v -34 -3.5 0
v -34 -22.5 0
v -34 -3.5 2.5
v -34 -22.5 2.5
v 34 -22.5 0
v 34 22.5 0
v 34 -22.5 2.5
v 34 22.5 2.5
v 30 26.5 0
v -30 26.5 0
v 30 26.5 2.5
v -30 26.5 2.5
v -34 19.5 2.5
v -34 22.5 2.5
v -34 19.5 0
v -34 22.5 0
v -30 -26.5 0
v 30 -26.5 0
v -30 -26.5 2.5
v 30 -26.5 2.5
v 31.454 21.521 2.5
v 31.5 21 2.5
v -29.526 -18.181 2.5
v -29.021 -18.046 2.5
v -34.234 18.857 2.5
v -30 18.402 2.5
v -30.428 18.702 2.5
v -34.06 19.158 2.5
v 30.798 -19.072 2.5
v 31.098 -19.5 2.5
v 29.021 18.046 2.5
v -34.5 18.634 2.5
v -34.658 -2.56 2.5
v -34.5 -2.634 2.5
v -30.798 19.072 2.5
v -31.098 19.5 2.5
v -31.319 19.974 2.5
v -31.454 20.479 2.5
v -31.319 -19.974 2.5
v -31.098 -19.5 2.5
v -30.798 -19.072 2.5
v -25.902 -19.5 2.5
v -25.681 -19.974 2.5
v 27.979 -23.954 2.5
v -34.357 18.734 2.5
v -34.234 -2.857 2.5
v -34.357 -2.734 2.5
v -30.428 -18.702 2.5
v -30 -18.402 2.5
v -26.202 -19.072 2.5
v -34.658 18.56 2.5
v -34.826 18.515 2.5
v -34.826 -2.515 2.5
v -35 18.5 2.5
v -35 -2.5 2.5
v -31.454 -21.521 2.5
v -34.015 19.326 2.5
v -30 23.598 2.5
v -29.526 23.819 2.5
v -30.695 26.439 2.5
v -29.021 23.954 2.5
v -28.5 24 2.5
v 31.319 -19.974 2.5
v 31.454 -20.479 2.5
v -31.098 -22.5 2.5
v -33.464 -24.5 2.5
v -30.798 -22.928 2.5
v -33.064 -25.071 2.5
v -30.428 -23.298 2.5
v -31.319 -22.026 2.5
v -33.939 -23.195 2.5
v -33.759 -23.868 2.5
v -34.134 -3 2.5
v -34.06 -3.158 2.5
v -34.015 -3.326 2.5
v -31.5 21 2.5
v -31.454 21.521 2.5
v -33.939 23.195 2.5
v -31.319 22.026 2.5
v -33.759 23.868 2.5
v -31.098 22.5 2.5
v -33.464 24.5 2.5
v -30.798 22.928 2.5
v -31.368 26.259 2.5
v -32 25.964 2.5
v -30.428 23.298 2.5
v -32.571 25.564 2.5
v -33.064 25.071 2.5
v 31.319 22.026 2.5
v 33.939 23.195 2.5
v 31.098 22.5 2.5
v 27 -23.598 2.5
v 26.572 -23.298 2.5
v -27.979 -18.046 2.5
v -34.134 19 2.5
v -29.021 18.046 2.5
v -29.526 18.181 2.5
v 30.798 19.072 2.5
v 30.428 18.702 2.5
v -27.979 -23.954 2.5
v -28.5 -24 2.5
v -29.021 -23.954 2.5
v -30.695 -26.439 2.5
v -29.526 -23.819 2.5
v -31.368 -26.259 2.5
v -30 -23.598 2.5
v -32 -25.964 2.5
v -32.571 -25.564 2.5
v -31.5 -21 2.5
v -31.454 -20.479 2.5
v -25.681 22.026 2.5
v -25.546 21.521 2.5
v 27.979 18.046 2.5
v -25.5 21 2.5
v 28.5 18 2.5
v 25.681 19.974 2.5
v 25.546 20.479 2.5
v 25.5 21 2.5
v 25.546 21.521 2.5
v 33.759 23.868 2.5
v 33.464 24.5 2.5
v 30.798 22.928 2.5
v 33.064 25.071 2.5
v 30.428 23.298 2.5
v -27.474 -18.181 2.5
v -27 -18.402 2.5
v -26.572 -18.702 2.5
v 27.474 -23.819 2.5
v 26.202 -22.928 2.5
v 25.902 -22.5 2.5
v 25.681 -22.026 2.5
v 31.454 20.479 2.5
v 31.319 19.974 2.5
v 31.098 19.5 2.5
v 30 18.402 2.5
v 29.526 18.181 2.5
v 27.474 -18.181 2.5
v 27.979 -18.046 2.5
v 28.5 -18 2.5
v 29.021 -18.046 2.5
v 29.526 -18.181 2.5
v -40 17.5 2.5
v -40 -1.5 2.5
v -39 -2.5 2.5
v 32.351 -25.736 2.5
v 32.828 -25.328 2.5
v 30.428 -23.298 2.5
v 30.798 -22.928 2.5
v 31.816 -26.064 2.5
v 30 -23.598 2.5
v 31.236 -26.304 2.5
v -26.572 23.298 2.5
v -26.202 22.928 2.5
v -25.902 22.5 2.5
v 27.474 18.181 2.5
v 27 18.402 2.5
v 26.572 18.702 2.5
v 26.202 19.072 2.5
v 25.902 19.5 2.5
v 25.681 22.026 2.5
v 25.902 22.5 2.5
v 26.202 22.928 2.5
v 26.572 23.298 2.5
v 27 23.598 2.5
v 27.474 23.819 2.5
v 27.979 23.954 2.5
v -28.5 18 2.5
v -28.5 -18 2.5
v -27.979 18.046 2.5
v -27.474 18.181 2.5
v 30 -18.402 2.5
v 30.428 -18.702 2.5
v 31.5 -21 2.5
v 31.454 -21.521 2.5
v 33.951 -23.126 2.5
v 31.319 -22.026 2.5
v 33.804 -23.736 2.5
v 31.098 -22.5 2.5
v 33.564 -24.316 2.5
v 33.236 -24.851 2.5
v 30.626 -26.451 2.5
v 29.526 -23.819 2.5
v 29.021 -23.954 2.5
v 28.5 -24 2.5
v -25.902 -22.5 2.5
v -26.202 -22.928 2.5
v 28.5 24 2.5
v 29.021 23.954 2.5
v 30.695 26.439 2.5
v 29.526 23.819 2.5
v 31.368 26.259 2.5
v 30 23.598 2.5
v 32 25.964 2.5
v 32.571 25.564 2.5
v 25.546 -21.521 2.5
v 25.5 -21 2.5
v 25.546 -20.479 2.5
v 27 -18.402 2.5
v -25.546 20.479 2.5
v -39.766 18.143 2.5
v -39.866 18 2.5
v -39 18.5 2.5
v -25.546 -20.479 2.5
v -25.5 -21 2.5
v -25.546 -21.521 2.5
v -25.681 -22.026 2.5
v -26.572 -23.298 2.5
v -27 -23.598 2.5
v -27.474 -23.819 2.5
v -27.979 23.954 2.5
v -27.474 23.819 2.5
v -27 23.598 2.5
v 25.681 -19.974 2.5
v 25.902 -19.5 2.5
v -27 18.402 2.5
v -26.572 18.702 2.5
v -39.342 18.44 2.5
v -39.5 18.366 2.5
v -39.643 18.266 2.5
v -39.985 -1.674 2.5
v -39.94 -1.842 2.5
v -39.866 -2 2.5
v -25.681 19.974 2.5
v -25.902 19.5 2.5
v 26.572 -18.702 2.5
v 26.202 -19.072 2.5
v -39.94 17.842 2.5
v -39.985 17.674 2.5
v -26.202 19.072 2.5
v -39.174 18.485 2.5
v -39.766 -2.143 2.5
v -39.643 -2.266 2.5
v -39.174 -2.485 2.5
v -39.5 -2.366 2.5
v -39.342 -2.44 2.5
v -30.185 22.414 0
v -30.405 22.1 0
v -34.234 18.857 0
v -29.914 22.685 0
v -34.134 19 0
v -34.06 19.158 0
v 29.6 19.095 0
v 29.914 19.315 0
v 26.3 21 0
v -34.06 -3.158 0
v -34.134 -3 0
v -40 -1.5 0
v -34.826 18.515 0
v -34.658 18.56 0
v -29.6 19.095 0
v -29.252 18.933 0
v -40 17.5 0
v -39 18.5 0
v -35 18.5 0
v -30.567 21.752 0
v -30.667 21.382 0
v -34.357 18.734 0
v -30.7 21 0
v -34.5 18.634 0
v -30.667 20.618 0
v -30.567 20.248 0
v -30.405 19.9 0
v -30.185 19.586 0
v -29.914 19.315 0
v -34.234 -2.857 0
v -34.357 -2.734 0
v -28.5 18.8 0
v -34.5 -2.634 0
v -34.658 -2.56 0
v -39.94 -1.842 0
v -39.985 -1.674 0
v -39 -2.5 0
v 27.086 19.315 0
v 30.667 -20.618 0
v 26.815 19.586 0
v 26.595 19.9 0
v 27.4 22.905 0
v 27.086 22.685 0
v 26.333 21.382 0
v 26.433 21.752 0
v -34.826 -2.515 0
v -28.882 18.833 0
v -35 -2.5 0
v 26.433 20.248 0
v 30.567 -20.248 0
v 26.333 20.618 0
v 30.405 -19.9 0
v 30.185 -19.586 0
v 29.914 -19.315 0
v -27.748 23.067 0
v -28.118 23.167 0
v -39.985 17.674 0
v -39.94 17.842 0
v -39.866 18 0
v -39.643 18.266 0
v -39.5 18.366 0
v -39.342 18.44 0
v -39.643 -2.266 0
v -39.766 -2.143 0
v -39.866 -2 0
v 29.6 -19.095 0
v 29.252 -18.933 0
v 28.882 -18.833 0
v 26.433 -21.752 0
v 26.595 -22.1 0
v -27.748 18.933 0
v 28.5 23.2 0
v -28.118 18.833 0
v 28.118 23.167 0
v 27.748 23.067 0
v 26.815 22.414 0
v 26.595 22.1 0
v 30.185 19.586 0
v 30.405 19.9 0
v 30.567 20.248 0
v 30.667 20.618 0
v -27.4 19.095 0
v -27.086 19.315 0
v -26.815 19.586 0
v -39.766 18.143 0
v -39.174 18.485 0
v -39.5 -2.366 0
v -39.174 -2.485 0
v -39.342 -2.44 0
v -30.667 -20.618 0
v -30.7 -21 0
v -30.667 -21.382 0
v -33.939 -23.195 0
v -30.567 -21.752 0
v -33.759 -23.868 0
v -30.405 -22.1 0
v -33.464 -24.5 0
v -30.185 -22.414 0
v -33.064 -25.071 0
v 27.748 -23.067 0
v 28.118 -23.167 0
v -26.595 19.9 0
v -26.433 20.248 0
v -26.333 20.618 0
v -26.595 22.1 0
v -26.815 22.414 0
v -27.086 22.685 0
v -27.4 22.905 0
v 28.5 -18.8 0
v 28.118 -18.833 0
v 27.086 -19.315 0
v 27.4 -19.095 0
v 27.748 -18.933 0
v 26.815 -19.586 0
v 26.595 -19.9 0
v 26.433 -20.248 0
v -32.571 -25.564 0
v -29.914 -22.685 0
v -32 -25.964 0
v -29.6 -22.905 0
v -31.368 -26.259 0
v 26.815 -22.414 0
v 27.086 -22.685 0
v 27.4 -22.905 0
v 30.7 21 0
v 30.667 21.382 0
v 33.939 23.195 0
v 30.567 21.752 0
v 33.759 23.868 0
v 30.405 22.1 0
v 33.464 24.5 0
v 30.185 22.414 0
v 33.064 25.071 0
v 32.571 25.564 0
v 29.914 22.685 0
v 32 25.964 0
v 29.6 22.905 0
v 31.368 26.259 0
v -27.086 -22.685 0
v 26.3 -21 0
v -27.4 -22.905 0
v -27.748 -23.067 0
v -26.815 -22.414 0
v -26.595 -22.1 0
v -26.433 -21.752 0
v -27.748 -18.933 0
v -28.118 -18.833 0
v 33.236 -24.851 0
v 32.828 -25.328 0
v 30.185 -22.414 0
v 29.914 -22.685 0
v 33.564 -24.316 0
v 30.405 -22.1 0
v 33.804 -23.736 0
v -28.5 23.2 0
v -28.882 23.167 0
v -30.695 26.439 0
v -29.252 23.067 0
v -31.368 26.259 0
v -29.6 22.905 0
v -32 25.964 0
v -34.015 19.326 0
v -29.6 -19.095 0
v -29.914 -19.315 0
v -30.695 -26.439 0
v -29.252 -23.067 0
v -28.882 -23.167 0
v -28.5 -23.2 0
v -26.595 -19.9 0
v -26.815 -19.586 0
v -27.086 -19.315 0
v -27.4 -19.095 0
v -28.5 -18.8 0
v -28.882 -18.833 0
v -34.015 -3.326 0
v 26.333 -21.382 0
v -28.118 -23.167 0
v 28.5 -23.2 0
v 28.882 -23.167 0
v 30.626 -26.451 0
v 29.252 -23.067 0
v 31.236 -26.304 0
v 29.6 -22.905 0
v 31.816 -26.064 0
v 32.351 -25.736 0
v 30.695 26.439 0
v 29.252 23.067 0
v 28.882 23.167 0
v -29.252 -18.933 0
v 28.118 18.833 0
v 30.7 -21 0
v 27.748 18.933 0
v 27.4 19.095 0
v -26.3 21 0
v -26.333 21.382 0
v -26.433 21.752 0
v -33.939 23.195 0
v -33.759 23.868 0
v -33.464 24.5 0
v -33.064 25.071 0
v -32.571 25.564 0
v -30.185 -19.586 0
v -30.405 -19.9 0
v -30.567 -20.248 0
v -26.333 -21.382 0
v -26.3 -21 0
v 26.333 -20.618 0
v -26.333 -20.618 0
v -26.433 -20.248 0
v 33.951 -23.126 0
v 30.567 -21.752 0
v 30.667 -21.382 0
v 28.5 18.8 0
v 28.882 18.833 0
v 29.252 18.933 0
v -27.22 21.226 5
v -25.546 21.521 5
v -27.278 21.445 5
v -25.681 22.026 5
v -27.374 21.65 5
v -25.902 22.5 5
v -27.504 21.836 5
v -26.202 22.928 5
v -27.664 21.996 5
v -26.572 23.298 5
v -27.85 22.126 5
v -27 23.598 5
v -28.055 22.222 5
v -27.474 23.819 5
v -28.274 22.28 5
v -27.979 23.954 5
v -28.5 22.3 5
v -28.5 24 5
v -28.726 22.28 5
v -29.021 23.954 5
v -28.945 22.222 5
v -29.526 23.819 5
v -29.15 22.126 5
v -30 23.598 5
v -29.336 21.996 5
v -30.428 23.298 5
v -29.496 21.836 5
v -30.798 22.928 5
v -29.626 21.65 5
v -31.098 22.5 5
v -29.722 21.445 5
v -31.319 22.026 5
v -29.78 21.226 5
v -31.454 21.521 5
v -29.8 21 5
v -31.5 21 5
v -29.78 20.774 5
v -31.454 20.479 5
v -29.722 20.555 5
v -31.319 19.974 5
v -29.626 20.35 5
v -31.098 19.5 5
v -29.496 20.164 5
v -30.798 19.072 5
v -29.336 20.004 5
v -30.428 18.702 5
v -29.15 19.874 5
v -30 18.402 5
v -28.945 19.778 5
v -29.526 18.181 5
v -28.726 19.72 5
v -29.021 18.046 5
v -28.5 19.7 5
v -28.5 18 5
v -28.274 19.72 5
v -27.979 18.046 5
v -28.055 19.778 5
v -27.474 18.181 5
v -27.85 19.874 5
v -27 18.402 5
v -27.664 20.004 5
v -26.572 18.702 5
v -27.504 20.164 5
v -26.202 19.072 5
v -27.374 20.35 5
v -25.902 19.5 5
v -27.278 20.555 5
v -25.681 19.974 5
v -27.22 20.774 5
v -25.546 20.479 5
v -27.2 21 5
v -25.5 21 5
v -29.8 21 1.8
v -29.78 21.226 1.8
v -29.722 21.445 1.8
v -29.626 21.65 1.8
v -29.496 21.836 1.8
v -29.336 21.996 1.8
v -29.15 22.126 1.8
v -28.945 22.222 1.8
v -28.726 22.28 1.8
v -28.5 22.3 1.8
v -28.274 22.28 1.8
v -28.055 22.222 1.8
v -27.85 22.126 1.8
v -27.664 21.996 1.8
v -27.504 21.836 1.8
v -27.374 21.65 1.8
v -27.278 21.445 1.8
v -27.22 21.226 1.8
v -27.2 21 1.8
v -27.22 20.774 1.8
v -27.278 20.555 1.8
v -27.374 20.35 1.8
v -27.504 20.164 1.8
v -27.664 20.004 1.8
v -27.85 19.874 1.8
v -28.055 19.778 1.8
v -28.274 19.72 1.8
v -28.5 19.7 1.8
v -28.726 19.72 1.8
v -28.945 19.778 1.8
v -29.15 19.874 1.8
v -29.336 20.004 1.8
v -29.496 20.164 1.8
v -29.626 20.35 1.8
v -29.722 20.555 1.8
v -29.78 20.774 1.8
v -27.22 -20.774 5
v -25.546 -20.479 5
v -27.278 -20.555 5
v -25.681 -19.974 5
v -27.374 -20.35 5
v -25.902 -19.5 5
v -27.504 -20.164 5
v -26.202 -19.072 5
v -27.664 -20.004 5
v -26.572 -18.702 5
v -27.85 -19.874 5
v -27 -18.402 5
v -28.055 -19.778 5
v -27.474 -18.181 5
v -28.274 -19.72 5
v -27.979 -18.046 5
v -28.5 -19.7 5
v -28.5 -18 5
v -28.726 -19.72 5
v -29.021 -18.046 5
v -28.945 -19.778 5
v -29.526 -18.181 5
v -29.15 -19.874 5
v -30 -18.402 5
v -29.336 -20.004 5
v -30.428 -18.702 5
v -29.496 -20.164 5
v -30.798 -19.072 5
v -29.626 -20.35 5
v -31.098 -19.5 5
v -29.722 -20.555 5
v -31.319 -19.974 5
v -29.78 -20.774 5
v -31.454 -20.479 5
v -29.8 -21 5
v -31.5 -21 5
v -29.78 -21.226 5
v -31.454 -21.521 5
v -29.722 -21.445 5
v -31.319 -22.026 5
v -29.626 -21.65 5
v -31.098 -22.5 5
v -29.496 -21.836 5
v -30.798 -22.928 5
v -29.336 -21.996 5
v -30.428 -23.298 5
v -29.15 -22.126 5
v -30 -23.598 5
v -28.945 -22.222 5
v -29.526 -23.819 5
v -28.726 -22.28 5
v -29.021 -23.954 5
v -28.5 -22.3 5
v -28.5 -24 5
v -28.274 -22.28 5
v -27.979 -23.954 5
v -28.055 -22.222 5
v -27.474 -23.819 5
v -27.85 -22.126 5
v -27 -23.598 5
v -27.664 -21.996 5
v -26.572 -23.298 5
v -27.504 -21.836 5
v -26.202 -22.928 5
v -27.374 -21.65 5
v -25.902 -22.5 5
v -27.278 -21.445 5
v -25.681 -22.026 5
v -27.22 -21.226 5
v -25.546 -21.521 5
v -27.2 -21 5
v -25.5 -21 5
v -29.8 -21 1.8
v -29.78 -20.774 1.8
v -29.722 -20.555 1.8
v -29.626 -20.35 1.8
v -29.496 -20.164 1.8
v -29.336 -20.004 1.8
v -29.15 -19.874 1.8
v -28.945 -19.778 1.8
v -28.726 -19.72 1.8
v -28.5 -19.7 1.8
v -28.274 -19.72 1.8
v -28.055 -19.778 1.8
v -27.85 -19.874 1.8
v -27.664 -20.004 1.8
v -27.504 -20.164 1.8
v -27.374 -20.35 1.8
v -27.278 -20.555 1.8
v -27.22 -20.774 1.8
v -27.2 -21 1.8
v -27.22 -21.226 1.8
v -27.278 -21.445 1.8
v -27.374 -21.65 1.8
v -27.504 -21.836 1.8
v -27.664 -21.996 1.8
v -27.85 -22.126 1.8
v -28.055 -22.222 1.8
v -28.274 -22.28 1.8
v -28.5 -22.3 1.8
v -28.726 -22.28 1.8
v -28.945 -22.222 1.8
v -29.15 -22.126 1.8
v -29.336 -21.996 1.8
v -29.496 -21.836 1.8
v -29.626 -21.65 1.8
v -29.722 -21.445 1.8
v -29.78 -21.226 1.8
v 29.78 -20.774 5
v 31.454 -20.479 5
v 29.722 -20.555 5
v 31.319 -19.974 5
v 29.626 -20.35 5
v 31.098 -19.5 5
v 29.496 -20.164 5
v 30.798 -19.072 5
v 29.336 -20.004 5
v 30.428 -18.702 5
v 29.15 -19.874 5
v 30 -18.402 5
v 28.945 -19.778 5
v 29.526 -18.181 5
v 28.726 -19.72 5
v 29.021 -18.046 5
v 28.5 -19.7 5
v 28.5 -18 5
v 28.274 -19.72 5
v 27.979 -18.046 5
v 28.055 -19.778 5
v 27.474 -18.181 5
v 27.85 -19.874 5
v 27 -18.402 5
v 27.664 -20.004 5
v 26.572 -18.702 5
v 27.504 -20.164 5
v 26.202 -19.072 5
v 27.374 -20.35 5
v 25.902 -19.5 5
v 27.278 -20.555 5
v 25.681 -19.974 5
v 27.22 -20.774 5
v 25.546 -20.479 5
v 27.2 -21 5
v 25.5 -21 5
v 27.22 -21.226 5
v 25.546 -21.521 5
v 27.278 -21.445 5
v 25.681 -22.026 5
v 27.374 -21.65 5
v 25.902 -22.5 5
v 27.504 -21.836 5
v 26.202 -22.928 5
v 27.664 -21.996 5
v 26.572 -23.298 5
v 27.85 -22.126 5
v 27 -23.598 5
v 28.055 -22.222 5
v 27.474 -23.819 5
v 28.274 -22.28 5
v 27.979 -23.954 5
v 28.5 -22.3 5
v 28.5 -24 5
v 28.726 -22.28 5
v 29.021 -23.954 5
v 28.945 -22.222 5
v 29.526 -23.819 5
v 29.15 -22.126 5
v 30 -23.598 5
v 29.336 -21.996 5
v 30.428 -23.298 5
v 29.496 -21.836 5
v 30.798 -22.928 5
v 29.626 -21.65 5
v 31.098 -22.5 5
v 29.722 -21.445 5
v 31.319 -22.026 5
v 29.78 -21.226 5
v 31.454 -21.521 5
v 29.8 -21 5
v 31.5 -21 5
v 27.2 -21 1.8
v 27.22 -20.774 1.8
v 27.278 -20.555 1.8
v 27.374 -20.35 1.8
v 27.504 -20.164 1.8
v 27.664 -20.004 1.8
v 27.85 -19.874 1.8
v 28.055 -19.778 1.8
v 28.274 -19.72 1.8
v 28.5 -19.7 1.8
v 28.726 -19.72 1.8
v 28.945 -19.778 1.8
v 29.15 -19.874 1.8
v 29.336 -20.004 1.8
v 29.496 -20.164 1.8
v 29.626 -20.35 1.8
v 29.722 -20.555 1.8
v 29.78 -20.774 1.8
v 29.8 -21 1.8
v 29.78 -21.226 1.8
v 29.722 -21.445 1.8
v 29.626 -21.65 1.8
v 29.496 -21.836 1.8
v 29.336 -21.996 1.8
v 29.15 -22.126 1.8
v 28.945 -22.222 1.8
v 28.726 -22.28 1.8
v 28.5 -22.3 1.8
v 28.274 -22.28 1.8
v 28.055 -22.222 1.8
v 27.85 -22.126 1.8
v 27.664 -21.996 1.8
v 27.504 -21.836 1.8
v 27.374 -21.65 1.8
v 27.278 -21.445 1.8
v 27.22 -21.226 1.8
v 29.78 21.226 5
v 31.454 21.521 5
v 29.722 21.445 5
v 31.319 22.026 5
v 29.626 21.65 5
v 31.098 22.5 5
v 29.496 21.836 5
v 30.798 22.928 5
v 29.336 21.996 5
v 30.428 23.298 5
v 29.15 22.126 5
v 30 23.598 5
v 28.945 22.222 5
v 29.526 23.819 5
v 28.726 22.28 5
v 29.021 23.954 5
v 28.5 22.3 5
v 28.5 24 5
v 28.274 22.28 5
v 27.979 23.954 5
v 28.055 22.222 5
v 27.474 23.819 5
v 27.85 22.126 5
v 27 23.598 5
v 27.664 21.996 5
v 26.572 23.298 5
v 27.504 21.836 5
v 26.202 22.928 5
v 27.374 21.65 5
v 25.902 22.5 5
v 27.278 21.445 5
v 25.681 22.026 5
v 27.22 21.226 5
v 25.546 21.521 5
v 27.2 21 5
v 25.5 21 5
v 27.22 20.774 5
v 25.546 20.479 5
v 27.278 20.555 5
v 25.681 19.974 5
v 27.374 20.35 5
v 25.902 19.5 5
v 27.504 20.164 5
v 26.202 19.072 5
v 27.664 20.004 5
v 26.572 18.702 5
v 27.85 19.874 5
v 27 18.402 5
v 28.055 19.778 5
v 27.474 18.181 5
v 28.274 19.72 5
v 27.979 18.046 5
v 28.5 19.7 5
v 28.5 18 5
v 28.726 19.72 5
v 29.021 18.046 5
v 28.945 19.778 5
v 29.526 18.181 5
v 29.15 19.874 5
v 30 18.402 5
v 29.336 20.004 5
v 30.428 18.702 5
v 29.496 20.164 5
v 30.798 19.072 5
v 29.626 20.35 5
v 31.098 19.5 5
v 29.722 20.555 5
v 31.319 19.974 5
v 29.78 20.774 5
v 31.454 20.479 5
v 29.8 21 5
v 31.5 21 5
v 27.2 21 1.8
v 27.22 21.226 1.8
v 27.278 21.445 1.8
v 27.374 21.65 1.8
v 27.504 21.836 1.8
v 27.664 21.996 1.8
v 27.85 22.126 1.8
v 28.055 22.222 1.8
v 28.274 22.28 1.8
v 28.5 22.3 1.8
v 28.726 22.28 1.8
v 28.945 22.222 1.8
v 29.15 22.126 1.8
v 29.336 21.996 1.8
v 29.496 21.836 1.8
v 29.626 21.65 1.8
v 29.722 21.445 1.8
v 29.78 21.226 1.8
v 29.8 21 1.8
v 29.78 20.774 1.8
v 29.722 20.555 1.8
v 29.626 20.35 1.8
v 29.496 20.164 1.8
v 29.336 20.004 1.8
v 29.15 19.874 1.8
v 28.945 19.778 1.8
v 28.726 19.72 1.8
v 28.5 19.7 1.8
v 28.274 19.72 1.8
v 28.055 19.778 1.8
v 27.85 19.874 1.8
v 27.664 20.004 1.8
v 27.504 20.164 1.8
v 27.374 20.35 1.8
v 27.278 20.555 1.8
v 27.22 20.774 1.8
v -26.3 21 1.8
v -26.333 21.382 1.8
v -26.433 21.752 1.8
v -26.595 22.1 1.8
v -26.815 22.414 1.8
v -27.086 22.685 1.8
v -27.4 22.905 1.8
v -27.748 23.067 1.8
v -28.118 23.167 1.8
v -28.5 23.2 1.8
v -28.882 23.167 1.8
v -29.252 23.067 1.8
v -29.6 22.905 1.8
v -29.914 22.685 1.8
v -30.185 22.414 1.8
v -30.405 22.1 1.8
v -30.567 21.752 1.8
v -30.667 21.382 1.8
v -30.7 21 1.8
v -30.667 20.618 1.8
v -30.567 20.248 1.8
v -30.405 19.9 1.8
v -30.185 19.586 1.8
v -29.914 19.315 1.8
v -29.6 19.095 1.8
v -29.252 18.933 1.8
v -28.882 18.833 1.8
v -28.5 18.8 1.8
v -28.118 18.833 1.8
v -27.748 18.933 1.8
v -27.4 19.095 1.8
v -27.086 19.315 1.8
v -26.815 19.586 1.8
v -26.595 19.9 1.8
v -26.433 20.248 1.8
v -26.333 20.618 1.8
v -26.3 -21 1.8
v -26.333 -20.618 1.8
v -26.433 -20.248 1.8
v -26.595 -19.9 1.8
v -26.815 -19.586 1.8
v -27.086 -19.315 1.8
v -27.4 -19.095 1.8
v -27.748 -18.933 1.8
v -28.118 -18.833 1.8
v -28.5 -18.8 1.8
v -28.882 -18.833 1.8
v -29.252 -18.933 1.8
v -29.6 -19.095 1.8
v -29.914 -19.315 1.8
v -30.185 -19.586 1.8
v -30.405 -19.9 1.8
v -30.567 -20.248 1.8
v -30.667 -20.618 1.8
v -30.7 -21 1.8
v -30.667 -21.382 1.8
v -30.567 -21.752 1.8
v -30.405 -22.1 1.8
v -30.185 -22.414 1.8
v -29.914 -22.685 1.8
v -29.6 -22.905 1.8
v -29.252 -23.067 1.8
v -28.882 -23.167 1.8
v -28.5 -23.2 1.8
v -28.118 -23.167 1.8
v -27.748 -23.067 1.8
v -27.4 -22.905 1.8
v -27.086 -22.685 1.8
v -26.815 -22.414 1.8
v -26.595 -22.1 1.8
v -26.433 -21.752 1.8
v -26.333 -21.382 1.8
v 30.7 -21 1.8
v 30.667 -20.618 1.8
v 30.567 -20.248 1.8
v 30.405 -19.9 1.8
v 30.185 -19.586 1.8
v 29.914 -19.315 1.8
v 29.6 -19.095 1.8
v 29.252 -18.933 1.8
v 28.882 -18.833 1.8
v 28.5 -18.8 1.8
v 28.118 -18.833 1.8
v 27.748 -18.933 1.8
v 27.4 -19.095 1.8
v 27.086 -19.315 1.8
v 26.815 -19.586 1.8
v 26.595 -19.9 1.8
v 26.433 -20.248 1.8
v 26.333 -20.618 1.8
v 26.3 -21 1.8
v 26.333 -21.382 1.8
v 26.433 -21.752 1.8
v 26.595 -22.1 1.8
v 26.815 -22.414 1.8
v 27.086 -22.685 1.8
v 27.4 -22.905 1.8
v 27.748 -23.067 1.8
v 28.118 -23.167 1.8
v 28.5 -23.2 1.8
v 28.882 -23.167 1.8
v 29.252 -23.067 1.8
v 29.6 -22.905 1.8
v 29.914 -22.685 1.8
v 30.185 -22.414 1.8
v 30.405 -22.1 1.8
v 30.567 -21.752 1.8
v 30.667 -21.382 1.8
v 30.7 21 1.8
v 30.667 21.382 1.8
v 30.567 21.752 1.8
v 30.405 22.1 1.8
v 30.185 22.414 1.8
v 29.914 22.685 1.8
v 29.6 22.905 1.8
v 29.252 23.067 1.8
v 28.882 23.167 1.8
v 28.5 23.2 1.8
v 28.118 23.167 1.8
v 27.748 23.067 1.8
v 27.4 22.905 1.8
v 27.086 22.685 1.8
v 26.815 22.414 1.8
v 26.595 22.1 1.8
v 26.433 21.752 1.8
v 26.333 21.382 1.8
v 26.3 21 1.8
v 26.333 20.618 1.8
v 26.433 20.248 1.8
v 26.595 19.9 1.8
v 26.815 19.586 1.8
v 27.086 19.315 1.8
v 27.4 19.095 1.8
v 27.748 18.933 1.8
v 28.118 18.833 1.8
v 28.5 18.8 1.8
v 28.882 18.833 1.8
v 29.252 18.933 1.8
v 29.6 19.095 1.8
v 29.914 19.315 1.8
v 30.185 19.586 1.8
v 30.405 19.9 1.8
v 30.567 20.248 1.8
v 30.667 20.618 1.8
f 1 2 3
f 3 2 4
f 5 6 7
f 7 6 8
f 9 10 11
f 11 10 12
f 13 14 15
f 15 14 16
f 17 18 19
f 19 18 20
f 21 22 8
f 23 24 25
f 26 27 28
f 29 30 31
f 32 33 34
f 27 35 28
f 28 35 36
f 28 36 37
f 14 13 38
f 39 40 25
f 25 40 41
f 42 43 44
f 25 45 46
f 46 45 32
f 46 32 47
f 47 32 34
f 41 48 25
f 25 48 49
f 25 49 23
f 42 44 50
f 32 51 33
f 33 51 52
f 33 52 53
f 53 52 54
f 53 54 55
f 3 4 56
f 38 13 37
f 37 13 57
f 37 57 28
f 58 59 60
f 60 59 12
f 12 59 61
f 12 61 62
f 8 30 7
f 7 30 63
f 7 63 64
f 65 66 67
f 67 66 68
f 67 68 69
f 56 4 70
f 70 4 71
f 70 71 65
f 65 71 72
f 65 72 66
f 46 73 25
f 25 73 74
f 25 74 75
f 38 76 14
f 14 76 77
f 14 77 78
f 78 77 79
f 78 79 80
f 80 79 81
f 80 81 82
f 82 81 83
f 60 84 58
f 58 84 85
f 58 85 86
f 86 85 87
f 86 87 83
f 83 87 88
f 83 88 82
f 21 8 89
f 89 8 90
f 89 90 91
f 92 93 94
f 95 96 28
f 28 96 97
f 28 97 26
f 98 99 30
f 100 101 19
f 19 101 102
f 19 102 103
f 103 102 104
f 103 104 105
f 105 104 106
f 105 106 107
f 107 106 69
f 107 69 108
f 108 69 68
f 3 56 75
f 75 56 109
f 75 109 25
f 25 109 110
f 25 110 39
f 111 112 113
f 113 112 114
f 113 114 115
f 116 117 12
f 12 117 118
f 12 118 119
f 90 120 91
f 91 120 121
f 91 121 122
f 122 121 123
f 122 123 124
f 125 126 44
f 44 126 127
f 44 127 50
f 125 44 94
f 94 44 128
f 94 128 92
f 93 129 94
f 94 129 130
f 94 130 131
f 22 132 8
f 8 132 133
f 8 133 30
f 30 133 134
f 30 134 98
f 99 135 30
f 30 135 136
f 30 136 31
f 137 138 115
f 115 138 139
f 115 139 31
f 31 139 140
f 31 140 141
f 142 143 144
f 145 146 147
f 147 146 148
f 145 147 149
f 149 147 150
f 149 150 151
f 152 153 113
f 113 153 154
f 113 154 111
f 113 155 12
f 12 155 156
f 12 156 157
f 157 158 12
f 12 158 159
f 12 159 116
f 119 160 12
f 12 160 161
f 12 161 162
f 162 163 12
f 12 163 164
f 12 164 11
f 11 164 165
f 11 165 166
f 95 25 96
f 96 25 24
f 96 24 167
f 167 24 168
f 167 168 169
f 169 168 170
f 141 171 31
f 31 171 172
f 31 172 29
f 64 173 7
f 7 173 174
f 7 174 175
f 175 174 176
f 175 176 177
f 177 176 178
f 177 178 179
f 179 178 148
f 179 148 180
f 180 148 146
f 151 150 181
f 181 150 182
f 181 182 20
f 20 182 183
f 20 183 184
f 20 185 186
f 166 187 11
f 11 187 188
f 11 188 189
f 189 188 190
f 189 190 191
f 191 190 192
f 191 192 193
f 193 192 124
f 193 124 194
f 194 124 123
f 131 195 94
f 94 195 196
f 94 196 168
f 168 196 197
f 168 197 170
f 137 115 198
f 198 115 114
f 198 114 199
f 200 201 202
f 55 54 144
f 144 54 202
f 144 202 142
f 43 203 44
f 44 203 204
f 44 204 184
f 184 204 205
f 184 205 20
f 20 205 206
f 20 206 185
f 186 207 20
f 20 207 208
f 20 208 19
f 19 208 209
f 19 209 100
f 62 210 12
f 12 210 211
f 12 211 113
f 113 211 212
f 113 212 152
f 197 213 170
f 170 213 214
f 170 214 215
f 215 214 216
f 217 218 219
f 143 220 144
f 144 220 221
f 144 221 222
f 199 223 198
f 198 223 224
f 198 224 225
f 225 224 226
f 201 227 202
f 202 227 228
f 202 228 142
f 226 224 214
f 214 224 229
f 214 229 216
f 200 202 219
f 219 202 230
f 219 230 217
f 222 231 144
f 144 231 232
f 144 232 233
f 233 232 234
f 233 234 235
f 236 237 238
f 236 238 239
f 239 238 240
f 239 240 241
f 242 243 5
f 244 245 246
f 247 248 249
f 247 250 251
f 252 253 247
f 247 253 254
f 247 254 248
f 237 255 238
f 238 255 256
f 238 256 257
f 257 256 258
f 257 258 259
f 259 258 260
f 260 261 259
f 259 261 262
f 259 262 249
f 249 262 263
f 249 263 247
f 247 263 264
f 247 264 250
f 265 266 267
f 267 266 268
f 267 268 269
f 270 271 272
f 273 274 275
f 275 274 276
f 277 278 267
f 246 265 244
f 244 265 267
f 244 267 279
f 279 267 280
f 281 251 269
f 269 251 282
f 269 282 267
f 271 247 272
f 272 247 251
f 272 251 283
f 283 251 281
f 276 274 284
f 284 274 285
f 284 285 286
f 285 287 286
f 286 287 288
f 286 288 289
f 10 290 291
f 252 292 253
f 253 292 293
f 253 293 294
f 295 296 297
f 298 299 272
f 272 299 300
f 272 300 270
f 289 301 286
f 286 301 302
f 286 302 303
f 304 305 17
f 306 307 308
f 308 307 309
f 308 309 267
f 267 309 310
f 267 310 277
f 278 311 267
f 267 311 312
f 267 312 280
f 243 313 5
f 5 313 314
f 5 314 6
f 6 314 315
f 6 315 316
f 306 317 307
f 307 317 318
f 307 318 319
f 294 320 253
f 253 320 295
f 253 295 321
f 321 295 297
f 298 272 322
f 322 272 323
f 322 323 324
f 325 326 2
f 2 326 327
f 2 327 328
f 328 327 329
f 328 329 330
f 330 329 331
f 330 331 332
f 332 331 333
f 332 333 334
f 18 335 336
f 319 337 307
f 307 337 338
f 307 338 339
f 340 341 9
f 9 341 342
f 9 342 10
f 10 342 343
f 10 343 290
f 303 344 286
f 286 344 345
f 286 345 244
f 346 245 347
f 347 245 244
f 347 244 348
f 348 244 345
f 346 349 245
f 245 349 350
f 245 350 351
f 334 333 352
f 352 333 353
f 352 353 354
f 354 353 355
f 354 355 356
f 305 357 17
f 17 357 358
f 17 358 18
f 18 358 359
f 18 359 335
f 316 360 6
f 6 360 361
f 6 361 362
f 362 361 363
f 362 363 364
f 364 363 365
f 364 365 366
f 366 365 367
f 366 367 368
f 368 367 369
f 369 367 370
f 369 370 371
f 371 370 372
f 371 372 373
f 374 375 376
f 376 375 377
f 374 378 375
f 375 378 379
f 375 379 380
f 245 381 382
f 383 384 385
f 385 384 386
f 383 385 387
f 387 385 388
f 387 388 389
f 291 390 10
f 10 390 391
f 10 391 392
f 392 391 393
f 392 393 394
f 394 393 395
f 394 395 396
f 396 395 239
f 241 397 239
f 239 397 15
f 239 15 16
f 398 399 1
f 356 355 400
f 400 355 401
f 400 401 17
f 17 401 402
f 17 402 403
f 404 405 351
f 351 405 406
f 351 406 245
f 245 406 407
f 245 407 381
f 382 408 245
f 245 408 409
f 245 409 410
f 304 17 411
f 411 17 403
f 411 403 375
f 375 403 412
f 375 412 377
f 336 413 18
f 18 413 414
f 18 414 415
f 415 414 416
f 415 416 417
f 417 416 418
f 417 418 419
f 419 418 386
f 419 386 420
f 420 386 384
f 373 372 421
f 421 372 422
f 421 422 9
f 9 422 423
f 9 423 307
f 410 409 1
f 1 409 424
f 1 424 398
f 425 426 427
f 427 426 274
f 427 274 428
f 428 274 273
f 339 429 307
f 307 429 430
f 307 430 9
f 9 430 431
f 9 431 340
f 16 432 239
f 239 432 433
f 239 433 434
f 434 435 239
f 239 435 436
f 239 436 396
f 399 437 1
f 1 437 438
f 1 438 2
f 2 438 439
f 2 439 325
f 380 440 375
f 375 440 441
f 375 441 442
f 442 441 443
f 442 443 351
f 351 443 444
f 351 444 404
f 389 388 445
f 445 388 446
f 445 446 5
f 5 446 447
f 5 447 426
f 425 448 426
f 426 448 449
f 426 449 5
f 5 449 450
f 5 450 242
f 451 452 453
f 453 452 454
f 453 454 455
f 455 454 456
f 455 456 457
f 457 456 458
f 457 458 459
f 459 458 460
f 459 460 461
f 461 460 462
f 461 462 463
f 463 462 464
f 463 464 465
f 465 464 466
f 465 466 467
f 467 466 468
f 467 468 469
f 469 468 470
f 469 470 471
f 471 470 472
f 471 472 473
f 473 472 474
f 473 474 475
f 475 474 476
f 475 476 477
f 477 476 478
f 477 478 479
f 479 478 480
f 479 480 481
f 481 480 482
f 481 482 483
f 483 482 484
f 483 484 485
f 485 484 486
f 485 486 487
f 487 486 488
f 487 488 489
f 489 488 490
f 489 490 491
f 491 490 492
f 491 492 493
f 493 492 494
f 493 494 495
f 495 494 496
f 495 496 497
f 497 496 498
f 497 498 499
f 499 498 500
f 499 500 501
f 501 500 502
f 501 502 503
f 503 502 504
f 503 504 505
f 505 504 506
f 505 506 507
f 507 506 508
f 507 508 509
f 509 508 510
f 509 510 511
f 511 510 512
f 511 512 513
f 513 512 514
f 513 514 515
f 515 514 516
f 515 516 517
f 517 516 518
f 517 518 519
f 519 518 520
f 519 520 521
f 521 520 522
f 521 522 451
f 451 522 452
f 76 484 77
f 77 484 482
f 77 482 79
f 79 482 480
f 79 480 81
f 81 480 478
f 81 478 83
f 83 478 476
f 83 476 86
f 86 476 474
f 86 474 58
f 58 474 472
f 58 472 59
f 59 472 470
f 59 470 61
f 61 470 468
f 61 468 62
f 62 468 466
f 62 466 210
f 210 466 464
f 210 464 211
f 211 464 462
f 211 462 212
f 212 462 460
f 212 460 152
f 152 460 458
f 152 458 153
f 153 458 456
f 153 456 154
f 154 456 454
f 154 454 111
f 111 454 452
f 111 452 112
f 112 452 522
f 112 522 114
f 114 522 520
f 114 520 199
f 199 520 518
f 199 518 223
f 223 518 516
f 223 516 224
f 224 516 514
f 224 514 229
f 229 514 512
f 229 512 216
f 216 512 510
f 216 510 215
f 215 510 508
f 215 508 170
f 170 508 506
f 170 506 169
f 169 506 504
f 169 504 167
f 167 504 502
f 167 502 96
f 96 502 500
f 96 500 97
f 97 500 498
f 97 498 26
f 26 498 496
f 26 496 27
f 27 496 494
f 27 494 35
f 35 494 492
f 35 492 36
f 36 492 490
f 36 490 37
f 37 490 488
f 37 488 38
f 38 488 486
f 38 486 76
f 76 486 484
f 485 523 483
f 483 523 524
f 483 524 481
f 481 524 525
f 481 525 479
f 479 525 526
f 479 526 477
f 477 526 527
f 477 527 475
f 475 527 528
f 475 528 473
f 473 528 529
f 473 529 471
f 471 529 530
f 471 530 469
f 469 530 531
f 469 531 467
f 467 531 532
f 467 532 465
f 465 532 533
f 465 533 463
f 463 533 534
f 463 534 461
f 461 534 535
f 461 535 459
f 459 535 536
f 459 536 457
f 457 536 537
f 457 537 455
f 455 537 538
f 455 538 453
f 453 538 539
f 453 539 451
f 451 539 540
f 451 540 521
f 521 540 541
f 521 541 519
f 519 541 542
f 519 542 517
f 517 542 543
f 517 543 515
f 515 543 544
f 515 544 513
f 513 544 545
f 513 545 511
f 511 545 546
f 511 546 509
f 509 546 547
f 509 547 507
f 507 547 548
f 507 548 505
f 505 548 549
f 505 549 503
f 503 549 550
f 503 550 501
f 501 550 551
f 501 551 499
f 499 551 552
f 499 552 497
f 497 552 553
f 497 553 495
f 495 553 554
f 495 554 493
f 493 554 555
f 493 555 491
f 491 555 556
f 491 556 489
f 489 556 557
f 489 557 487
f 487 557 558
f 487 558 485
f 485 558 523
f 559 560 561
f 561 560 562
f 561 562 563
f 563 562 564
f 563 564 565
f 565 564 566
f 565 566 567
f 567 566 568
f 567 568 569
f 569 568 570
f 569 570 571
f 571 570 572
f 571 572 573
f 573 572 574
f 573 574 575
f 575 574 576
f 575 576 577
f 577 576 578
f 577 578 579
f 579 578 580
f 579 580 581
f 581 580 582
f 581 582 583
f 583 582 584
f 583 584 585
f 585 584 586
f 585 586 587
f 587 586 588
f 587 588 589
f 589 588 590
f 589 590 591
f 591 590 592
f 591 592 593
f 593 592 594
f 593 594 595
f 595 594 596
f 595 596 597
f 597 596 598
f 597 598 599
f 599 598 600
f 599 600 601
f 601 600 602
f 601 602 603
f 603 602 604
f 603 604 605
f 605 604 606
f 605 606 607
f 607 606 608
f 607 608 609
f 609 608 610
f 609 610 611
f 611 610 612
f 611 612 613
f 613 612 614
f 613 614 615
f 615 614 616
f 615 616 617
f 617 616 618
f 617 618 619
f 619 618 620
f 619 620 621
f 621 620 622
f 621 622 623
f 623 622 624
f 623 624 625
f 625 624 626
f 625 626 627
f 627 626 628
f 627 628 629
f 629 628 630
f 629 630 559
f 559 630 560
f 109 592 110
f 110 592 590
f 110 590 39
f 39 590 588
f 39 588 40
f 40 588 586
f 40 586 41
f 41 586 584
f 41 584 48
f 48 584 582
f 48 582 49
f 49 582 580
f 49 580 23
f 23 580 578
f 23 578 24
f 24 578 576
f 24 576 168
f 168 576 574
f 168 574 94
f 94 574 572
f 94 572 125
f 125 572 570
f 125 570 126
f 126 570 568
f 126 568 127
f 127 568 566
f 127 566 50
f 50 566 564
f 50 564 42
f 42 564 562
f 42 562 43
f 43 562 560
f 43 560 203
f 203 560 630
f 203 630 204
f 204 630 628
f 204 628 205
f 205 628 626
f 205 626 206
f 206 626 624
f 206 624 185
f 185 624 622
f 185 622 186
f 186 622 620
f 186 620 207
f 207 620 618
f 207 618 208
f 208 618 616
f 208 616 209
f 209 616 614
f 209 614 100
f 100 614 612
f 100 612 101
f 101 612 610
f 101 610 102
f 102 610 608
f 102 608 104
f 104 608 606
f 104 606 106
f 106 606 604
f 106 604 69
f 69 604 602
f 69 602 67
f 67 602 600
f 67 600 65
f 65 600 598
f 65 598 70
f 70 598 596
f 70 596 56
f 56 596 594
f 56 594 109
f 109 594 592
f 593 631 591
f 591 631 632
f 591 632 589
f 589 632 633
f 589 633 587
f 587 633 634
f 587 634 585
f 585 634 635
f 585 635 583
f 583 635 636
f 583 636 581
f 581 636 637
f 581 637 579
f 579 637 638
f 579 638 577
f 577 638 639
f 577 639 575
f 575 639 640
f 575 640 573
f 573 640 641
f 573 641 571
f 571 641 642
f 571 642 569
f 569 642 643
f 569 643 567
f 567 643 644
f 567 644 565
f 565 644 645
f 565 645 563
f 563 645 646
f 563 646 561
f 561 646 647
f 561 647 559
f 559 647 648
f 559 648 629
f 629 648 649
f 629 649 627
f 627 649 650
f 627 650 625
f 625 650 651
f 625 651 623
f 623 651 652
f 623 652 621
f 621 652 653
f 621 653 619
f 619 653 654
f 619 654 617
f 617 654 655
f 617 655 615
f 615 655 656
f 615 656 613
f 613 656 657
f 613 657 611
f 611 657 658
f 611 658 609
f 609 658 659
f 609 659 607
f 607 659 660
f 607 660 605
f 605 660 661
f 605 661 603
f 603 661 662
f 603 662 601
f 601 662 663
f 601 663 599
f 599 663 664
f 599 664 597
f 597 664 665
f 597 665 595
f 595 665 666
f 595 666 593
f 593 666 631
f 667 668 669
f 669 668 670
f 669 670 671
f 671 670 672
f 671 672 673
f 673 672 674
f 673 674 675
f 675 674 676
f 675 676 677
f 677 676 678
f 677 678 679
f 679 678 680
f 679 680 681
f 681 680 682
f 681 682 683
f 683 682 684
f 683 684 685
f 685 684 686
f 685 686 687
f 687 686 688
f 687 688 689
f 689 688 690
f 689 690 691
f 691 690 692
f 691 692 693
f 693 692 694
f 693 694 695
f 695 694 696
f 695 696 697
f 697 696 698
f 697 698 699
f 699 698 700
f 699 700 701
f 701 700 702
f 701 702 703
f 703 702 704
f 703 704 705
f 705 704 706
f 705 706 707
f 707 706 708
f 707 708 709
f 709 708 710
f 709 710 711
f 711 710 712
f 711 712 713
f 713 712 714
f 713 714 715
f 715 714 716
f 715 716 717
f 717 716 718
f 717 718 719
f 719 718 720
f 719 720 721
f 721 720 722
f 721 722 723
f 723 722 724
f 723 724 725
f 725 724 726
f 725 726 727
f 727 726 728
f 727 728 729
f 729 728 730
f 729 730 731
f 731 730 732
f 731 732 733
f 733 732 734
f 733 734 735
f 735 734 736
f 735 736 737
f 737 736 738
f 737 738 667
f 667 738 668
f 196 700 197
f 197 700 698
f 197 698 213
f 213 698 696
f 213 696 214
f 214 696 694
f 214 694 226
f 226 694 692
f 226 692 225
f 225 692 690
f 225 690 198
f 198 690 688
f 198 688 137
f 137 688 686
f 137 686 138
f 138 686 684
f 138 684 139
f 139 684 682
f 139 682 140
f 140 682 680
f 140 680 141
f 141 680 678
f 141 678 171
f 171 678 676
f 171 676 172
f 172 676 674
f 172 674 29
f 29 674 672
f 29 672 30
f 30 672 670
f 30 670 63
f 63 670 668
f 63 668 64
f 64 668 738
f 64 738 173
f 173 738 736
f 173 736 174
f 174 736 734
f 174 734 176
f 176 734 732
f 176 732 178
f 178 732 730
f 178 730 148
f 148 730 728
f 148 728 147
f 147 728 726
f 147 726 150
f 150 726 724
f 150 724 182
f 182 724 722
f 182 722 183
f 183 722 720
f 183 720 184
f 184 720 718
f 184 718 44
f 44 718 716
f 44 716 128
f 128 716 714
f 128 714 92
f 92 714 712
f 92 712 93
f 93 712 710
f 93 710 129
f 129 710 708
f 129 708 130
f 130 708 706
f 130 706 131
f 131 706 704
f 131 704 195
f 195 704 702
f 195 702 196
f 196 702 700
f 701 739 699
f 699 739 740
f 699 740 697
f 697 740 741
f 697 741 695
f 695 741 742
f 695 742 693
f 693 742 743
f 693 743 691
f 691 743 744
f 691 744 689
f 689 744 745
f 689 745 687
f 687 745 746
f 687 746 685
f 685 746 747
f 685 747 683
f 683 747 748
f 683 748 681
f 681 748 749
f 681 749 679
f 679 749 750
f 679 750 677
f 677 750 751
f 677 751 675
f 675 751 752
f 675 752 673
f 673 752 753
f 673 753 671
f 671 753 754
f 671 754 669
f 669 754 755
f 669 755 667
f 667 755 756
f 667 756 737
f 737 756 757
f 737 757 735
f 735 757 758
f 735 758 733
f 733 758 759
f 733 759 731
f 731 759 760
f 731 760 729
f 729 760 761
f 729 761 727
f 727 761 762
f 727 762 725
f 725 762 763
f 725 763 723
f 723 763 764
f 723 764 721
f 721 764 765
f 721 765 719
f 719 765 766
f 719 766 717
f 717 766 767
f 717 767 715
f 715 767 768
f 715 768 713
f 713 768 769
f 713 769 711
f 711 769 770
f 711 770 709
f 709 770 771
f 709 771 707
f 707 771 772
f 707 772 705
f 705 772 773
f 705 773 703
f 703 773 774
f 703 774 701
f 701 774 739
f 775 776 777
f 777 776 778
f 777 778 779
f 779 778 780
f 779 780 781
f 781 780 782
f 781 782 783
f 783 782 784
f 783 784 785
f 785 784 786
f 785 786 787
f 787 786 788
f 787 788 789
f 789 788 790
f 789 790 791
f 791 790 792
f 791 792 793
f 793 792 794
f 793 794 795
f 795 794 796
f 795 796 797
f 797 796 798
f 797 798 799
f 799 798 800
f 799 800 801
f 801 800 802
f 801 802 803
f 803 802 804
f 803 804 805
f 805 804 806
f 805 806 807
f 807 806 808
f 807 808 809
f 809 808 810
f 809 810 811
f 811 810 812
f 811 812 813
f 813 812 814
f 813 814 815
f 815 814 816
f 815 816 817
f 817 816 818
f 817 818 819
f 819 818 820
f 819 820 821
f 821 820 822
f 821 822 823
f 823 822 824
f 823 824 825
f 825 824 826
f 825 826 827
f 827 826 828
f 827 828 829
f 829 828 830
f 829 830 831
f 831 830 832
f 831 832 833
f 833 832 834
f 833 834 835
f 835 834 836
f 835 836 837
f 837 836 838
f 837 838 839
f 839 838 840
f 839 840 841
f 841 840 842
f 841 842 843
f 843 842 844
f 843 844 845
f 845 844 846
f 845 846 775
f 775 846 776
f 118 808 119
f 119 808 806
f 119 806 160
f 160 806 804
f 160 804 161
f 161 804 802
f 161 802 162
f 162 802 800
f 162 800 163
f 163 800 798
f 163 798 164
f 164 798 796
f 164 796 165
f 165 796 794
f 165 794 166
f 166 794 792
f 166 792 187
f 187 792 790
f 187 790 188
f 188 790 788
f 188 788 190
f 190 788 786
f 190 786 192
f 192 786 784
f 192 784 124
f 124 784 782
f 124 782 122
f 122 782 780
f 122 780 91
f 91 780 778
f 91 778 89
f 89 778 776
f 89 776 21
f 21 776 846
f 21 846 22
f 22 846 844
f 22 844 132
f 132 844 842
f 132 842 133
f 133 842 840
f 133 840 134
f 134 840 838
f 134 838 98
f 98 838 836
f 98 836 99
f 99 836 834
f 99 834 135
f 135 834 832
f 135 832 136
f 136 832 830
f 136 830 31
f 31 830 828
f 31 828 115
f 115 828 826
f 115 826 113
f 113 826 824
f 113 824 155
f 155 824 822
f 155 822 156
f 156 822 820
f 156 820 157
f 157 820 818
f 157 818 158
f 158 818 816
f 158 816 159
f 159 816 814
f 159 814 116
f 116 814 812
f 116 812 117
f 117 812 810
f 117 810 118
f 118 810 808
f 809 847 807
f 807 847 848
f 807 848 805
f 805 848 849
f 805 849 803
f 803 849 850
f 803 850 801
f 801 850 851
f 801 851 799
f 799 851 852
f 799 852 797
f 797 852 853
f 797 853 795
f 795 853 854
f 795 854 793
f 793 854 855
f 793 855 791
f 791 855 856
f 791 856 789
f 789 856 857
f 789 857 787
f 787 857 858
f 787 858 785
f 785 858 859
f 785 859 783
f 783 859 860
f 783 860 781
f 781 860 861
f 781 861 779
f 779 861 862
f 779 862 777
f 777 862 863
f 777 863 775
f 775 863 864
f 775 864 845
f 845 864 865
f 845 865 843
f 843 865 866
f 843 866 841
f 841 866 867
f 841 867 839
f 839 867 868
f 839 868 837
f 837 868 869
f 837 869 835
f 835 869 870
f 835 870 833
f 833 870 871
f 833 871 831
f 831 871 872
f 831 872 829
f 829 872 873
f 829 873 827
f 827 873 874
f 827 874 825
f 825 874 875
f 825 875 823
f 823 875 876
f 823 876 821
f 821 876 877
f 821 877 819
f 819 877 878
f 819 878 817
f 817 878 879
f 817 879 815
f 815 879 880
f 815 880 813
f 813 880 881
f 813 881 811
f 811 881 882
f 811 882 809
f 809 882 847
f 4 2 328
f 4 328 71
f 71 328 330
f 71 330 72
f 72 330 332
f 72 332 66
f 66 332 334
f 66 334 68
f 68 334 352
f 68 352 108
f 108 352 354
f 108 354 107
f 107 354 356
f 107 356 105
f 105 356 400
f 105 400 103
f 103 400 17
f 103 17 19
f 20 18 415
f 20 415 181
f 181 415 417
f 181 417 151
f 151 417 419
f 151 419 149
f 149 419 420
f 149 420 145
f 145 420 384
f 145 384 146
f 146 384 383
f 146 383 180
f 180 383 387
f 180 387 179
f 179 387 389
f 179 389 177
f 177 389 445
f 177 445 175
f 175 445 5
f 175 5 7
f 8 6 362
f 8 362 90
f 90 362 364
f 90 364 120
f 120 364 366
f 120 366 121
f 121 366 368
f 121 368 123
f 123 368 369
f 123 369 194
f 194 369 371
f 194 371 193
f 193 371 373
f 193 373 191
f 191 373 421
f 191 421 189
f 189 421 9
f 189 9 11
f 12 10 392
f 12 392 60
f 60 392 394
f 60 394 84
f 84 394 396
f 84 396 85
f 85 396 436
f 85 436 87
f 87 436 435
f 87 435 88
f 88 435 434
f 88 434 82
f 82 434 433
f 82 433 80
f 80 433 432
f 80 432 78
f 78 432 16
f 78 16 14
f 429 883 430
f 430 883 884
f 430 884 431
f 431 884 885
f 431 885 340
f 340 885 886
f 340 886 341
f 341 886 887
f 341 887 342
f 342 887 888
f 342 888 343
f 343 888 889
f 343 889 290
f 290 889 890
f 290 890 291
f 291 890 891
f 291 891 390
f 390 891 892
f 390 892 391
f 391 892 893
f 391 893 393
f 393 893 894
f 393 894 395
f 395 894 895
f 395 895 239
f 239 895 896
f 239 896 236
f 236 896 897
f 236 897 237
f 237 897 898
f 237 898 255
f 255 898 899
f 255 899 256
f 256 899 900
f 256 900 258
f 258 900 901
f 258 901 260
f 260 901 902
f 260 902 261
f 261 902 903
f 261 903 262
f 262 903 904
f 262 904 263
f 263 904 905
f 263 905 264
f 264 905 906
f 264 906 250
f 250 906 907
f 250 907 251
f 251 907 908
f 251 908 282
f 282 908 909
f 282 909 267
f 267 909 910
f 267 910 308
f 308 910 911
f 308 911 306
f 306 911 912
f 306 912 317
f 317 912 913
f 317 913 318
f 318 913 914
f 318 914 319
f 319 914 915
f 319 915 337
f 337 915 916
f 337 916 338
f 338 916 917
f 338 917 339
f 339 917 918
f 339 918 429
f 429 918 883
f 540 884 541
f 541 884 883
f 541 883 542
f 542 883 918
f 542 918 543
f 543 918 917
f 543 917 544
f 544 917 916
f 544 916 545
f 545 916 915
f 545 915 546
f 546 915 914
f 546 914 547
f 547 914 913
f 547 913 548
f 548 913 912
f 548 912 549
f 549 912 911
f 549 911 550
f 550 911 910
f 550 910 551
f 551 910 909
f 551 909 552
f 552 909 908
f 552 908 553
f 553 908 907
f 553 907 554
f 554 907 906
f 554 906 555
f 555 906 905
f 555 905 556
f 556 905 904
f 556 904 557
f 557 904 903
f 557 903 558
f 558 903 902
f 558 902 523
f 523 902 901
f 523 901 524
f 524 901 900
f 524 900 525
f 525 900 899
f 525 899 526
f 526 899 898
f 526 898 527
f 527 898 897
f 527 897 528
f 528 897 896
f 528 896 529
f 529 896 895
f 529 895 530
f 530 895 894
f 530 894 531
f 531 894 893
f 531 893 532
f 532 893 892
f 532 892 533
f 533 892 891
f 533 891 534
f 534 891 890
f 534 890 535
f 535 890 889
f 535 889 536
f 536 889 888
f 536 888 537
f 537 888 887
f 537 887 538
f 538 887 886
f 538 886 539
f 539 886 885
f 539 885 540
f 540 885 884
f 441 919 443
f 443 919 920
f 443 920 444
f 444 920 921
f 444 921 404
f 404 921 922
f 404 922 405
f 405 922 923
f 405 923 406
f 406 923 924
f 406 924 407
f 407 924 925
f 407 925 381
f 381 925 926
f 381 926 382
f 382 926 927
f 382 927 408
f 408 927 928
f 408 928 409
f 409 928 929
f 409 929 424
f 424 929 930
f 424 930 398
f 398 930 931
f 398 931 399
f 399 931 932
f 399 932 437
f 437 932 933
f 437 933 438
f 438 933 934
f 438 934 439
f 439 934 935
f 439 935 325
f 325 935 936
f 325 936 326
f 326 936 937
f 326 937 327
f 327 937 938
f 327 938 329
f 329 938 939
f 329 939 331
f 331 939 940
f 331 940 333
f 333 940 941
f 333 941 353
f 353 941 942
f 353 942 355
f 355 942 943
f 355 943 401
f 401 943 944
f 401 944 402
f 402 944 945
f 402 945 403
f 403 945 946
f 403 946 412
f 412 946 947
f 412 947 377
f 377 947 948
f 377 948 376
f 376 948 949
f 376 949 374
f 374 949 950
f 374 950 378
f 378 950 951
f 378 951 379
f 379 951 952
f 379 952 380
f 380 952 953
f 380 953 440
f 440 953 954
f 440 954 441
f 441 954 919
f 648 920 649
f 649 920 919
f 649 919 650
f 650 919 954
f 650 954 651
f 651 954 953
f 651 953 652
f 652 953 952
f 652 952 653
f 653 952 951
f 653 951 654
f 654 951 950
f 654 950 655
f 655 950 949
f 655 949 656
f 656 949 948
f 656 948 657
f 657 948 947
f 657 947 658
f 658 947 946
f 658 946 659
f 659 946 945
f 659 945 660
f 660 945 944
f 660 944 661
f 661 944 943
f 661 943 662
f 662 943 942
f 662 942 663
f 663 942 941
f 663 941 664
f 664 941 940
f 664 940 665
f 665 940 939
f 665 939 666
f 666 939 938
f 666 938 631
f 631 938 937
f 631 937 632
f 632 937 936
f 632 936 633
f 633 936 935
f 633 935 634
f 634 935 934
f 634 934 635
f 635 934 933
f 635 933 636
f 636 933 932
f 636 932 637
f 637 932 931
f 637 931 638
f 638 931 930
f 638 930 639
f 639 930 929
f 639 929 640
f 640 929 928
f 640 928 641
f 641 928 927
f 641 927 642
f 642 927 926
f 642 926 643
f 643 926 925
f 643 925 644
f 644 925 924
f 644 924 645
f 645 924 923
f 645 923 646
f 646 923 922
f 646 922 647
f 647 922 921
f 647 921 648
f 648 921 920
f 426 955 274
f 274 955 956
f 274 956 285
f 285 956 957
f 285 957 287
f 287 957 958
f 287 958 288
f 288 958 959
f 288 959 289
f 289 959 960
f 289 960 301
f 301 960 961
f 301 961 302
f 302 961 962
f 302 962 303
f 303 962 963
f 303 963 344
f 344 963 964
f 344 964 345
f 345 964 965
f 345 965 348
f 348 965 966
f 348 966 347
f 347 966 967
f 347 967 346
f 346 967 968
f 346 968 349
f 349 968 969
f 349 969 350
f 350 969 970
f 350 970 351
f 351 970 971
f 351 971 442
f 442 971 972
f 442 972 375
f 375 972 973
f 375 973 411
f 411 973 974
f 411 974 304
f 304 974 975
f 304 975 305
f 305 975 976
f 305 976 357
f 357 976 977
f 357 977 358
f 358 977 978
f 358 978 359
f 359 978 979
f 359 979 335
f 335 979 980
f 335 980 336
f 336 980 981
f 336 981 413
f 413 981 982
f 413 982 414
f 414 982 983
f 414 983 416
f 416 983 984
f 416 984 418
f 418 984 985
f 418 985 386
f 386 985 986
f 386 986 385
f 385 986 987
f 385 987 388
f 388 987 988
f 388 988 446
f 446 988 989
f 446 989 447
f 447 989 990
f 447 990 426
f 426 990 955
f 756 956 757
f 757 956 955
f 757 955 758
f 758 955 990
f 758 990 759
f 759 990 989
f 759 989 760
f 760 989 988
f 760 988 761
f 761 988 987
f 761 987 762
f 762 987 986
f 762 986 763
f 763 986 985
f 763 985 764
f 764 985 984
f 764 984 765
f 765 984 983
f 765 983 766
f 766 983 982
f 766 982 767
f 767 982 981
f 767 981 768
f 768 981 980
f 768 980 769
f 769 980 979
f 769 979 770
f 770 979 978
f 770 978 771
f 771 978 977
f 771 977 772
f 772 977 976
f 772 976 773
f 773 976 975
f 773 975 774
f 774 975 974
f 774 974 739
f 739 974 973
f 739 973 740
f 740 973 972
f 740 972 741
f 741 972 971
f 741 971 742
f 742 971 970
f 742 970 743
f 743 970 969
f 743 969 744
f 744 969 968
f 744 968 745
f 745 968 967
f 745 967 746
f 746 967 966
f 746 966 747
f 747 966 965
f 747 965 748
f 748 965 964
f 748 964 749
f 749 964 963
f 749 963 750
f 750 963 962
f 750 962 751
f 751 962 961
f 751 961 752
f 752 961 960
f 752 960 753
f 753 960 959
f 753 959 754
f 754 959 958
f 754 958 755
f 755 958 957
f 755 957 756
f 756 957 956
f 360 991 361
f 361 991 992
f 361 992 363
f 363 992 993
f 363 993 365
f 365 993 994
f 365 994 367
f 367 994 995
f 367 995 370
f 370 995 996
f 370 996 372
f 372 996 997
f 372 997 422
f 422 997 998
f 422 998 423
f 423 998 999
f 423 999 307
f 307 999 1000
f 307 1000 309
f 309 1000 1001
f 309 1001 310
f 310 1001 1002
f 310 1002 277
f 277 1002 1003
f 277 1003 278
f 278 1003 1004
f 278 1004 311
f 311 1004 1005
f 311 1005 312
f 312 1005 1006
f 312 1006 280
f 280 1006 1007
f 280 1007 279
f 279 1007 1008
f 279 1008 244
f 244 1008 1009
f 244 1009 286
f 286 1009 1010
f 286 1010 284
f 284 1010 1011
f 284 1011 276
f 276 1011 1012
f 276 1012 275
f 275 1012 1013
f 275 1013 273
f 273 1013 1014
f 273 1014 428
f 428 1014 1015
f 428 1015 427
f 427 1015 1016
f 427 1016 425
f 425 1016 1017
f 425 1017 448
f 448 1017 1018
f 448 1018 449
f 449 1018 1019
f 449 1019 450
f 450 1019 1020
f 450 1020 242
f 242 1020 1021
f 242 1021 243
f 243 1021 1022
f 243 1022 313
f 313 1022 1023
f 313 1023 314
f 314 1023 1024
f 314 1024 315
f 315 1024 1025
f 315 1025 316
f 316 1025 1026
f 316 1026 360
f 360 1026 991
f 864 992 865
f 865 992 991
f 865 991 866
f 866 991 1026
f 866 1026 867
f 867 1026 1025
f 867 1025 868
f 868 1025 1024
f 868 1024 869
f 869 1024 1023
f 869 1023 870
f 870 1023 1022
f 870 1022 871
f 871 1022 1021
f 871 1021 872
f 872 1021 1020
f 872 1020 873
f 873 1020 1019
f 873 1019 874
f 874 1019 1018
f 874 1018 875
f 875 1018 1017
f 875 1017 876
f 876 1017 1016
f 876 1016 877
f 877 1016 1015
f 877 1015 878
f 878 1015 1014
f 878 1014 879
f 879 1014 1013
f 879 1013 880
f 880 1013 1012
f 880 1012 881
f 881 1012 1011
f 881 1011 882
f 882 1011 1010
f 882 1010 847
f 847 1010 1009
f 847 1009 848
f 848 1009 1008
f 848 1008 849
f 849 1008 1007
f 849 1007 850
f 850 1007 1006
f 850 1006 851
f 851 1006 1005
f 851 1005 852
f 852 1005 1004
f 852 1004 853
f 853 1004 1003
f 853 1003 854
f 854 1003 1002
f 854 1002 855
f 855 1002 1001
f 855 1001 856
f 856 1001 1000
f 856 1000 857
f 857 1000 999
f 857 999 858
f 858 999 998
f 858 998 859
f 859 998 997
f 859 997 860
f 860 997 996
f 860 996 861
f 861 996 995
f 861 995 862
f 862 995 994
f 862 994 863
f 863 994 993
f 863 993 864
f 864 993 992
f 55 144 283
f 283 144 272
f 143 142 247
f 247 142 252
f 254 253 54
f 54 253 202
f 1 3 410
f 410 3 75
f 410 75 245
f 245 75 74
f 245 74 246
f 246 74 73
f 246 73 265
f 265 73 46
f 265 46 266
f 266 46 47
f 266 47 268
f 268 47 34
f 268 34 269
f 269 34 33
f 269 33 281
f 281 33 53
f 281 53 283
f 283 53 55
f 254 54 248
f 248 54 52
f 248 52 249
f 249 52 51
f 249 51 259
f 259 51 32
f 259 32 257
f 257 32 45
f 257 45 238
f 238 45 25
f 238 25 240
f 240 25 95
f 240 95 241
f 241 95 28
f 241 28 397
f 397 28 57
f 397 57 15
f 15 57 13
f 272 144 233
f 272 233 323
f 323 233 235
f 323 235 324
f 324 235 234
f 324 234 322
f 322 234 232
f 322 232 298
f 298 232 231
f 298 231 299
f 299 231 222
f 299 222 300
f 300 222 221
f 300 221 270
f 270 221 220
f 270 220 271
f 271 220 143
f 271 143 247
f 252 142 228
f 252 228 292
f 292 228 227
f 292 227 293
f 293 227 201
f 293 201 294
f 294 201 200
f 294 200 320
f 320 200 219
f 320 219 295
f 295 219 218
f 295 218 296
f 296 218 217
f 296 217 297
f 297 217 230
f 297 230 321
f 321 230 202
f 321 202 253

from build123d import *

# Parameters (mm, degrees)
ESBO_O1_W                = 68
ESBO_O1_H                = 53
RESSALTO_EXTRUS_O1_DEPTH = 2.5
ESBO_O2_R                = 3
ESBO_O2_R_2              = 1.3
RESSALTO_EXTRUS_O2_DEPTH = 2.5
FILETE1_R                = 4
CORTE_EXTRUS_O1_START    = -0.7
ESBO_O13_R               = 2.2
CORTE_EXTRUS_O1_DEPTH    = 43.479856415
ESBO_O14_R               = 1.3
CORTE_EXTRUS_O2_DEPTH    = 44.179856415
ESBO_O16_W               = 6
ESBO_O16_H               = 21
RESSALTO_EXTRUS_O4_DEPTH = 2.5
FILETE2_R                = 1


with BuildPart() as part:
    # Esboço1 → Ressalto-extrusão1 (new body)
    with BuildSketch(Plane.XY):
        Rectangle(ESBO_O1_W, ESBO_O1_H)
    extrude(amount=RESSALTO_EXTRUS_O1_DEPTH)

    # Esboço2 → Ressalto-extrusão2 (add)
    # profile 1 of 4: a face of its own
    with BuildSketch(Plane.XY.offset(2.5)):
        with Locations(Location((-28.5, 21, 0), (0, 0, 180))):
            Circle(ESBO_O2_R)
        with Locations((-28.5, 21)):
            Circle(ESBO_O2_R_2, mode=Mode.SUBTRACT)
    # profile 2 of 4: a face of its own
    with BuildSketch(Plane.XY.offset(2.5)):
        with Locations(Location((-28.5, -21, 0), (0, 0, 180))):
            Circle(ESBO_O2_R)
        with Locations(Location((-28.5, -21, 0), (0, 0, 180))):
            Circle(ESBO_O2_R_2, mode=Mode.SUBTRACT)
    # profile 3 of 4: a face of its own
    with BuildSketch(Plane.XY.offset(2.5)):
        with Locations(Location((28.5, -21, 0), (0, 0, 180))):
            Circle(ESBO_O2_R)
        with Locations((28.5, -21)):
            Circle(ESBO_O2_R_2, mode=Mode.SUBTRACT)
    # profile 4 of 4: a face of its own
    with BuildSketch(Plane.XY.offset(2.5)):
        with Locations(Location((28.5, 21, 0), (0, 0, 180))):
            Circle(ESBO_O2_R)
        with Locations(Location((28.5, 21, 0), (0, 0, 180))):
            Circle(ESBO_O2_R_2, mode=Mode.SUBTRACT)
    extrude(amount=RESSALTO_EXTRUS_O2_DEPTH)

    # Filete1
    filete1_edges = [part.edges().sort_by_distance(p)[0] for p in [
        (34, -26.5, 1.25),
        (-34, -26.5, 1.25),
        (-34, 26.5, 1.25),
        (34, 26.5, 1.25),
    ]]
    fillet(filete1_edges, radius=FILETE1_R)

    # Esboço13 → Corte-extrusão1 (cut, through all)
    with BuildSketch(Plane.XY.offset(2.5).offset(CORTE_EXTRUS_O1_START)):
        with Locations((-28.5, 21)):
            Circle(ESBO_O13_R)
        with Locations(Location((-28.5, -21, 0), (0, 0, 180))):
            Circle(ESBO_O13_R)
        with Locations((28.5, -21)):
            Circle(ESBO_O13_R)
        with Locations(Location((28.5, 21, 0), (0, 0, 180))):
            Circle(ESBO_O13_R)
    extrude(amount=-CORTE_EXTRUS_O1_DEPTH, mode=Mode.SUBTRACT)

    # Esboço14 → Corte-extrusão2 (cut, through all)
    with BuildSketch(Plane.XY.offset(2.5)):
        with Locations((-28.5, 21)):
            Circle(ESBO_O14_R)
        with Locations(Location((28.5, 21, 0), (0, 0, 180))):
            Circle(ESBO_O14_R)
        with Locations((28.5, -21)):
            Circle(ESBO_O14_R)
        with Locations(Location((-28.5, -21, 0), (0, 0, 180))):
            Circle(ESBO_O14_R)
    extrude(amount=-CORTE_EXTRUS_O2_DEPTH, mode=Mode.SUBTRACT)

    # Esboço16 → Ressalto-extrusão4 (add, through all)
    with BuildSketch(Plane.XY.offset(2.5)):
        with Locations((-37, 8)):
            Rectangle(ESBO_O16_W, ESBO_O16_H)
    extrude(amount=-RESSALTO_EXTRUS_O4_DEPTH)

    # Filete2
    filete2_edges = [part.edges().sort_by_distance(p)[0] for p in [
        (-34, 18.5, 1.25),
        (-34, -2.5, 1.25),
        (-40, -2.5, 1.25),
        (-40, 18.5, 1.25),
    ]]
    fillet(filete2_edges, radius=FILETE2_R)


solid = part.part
